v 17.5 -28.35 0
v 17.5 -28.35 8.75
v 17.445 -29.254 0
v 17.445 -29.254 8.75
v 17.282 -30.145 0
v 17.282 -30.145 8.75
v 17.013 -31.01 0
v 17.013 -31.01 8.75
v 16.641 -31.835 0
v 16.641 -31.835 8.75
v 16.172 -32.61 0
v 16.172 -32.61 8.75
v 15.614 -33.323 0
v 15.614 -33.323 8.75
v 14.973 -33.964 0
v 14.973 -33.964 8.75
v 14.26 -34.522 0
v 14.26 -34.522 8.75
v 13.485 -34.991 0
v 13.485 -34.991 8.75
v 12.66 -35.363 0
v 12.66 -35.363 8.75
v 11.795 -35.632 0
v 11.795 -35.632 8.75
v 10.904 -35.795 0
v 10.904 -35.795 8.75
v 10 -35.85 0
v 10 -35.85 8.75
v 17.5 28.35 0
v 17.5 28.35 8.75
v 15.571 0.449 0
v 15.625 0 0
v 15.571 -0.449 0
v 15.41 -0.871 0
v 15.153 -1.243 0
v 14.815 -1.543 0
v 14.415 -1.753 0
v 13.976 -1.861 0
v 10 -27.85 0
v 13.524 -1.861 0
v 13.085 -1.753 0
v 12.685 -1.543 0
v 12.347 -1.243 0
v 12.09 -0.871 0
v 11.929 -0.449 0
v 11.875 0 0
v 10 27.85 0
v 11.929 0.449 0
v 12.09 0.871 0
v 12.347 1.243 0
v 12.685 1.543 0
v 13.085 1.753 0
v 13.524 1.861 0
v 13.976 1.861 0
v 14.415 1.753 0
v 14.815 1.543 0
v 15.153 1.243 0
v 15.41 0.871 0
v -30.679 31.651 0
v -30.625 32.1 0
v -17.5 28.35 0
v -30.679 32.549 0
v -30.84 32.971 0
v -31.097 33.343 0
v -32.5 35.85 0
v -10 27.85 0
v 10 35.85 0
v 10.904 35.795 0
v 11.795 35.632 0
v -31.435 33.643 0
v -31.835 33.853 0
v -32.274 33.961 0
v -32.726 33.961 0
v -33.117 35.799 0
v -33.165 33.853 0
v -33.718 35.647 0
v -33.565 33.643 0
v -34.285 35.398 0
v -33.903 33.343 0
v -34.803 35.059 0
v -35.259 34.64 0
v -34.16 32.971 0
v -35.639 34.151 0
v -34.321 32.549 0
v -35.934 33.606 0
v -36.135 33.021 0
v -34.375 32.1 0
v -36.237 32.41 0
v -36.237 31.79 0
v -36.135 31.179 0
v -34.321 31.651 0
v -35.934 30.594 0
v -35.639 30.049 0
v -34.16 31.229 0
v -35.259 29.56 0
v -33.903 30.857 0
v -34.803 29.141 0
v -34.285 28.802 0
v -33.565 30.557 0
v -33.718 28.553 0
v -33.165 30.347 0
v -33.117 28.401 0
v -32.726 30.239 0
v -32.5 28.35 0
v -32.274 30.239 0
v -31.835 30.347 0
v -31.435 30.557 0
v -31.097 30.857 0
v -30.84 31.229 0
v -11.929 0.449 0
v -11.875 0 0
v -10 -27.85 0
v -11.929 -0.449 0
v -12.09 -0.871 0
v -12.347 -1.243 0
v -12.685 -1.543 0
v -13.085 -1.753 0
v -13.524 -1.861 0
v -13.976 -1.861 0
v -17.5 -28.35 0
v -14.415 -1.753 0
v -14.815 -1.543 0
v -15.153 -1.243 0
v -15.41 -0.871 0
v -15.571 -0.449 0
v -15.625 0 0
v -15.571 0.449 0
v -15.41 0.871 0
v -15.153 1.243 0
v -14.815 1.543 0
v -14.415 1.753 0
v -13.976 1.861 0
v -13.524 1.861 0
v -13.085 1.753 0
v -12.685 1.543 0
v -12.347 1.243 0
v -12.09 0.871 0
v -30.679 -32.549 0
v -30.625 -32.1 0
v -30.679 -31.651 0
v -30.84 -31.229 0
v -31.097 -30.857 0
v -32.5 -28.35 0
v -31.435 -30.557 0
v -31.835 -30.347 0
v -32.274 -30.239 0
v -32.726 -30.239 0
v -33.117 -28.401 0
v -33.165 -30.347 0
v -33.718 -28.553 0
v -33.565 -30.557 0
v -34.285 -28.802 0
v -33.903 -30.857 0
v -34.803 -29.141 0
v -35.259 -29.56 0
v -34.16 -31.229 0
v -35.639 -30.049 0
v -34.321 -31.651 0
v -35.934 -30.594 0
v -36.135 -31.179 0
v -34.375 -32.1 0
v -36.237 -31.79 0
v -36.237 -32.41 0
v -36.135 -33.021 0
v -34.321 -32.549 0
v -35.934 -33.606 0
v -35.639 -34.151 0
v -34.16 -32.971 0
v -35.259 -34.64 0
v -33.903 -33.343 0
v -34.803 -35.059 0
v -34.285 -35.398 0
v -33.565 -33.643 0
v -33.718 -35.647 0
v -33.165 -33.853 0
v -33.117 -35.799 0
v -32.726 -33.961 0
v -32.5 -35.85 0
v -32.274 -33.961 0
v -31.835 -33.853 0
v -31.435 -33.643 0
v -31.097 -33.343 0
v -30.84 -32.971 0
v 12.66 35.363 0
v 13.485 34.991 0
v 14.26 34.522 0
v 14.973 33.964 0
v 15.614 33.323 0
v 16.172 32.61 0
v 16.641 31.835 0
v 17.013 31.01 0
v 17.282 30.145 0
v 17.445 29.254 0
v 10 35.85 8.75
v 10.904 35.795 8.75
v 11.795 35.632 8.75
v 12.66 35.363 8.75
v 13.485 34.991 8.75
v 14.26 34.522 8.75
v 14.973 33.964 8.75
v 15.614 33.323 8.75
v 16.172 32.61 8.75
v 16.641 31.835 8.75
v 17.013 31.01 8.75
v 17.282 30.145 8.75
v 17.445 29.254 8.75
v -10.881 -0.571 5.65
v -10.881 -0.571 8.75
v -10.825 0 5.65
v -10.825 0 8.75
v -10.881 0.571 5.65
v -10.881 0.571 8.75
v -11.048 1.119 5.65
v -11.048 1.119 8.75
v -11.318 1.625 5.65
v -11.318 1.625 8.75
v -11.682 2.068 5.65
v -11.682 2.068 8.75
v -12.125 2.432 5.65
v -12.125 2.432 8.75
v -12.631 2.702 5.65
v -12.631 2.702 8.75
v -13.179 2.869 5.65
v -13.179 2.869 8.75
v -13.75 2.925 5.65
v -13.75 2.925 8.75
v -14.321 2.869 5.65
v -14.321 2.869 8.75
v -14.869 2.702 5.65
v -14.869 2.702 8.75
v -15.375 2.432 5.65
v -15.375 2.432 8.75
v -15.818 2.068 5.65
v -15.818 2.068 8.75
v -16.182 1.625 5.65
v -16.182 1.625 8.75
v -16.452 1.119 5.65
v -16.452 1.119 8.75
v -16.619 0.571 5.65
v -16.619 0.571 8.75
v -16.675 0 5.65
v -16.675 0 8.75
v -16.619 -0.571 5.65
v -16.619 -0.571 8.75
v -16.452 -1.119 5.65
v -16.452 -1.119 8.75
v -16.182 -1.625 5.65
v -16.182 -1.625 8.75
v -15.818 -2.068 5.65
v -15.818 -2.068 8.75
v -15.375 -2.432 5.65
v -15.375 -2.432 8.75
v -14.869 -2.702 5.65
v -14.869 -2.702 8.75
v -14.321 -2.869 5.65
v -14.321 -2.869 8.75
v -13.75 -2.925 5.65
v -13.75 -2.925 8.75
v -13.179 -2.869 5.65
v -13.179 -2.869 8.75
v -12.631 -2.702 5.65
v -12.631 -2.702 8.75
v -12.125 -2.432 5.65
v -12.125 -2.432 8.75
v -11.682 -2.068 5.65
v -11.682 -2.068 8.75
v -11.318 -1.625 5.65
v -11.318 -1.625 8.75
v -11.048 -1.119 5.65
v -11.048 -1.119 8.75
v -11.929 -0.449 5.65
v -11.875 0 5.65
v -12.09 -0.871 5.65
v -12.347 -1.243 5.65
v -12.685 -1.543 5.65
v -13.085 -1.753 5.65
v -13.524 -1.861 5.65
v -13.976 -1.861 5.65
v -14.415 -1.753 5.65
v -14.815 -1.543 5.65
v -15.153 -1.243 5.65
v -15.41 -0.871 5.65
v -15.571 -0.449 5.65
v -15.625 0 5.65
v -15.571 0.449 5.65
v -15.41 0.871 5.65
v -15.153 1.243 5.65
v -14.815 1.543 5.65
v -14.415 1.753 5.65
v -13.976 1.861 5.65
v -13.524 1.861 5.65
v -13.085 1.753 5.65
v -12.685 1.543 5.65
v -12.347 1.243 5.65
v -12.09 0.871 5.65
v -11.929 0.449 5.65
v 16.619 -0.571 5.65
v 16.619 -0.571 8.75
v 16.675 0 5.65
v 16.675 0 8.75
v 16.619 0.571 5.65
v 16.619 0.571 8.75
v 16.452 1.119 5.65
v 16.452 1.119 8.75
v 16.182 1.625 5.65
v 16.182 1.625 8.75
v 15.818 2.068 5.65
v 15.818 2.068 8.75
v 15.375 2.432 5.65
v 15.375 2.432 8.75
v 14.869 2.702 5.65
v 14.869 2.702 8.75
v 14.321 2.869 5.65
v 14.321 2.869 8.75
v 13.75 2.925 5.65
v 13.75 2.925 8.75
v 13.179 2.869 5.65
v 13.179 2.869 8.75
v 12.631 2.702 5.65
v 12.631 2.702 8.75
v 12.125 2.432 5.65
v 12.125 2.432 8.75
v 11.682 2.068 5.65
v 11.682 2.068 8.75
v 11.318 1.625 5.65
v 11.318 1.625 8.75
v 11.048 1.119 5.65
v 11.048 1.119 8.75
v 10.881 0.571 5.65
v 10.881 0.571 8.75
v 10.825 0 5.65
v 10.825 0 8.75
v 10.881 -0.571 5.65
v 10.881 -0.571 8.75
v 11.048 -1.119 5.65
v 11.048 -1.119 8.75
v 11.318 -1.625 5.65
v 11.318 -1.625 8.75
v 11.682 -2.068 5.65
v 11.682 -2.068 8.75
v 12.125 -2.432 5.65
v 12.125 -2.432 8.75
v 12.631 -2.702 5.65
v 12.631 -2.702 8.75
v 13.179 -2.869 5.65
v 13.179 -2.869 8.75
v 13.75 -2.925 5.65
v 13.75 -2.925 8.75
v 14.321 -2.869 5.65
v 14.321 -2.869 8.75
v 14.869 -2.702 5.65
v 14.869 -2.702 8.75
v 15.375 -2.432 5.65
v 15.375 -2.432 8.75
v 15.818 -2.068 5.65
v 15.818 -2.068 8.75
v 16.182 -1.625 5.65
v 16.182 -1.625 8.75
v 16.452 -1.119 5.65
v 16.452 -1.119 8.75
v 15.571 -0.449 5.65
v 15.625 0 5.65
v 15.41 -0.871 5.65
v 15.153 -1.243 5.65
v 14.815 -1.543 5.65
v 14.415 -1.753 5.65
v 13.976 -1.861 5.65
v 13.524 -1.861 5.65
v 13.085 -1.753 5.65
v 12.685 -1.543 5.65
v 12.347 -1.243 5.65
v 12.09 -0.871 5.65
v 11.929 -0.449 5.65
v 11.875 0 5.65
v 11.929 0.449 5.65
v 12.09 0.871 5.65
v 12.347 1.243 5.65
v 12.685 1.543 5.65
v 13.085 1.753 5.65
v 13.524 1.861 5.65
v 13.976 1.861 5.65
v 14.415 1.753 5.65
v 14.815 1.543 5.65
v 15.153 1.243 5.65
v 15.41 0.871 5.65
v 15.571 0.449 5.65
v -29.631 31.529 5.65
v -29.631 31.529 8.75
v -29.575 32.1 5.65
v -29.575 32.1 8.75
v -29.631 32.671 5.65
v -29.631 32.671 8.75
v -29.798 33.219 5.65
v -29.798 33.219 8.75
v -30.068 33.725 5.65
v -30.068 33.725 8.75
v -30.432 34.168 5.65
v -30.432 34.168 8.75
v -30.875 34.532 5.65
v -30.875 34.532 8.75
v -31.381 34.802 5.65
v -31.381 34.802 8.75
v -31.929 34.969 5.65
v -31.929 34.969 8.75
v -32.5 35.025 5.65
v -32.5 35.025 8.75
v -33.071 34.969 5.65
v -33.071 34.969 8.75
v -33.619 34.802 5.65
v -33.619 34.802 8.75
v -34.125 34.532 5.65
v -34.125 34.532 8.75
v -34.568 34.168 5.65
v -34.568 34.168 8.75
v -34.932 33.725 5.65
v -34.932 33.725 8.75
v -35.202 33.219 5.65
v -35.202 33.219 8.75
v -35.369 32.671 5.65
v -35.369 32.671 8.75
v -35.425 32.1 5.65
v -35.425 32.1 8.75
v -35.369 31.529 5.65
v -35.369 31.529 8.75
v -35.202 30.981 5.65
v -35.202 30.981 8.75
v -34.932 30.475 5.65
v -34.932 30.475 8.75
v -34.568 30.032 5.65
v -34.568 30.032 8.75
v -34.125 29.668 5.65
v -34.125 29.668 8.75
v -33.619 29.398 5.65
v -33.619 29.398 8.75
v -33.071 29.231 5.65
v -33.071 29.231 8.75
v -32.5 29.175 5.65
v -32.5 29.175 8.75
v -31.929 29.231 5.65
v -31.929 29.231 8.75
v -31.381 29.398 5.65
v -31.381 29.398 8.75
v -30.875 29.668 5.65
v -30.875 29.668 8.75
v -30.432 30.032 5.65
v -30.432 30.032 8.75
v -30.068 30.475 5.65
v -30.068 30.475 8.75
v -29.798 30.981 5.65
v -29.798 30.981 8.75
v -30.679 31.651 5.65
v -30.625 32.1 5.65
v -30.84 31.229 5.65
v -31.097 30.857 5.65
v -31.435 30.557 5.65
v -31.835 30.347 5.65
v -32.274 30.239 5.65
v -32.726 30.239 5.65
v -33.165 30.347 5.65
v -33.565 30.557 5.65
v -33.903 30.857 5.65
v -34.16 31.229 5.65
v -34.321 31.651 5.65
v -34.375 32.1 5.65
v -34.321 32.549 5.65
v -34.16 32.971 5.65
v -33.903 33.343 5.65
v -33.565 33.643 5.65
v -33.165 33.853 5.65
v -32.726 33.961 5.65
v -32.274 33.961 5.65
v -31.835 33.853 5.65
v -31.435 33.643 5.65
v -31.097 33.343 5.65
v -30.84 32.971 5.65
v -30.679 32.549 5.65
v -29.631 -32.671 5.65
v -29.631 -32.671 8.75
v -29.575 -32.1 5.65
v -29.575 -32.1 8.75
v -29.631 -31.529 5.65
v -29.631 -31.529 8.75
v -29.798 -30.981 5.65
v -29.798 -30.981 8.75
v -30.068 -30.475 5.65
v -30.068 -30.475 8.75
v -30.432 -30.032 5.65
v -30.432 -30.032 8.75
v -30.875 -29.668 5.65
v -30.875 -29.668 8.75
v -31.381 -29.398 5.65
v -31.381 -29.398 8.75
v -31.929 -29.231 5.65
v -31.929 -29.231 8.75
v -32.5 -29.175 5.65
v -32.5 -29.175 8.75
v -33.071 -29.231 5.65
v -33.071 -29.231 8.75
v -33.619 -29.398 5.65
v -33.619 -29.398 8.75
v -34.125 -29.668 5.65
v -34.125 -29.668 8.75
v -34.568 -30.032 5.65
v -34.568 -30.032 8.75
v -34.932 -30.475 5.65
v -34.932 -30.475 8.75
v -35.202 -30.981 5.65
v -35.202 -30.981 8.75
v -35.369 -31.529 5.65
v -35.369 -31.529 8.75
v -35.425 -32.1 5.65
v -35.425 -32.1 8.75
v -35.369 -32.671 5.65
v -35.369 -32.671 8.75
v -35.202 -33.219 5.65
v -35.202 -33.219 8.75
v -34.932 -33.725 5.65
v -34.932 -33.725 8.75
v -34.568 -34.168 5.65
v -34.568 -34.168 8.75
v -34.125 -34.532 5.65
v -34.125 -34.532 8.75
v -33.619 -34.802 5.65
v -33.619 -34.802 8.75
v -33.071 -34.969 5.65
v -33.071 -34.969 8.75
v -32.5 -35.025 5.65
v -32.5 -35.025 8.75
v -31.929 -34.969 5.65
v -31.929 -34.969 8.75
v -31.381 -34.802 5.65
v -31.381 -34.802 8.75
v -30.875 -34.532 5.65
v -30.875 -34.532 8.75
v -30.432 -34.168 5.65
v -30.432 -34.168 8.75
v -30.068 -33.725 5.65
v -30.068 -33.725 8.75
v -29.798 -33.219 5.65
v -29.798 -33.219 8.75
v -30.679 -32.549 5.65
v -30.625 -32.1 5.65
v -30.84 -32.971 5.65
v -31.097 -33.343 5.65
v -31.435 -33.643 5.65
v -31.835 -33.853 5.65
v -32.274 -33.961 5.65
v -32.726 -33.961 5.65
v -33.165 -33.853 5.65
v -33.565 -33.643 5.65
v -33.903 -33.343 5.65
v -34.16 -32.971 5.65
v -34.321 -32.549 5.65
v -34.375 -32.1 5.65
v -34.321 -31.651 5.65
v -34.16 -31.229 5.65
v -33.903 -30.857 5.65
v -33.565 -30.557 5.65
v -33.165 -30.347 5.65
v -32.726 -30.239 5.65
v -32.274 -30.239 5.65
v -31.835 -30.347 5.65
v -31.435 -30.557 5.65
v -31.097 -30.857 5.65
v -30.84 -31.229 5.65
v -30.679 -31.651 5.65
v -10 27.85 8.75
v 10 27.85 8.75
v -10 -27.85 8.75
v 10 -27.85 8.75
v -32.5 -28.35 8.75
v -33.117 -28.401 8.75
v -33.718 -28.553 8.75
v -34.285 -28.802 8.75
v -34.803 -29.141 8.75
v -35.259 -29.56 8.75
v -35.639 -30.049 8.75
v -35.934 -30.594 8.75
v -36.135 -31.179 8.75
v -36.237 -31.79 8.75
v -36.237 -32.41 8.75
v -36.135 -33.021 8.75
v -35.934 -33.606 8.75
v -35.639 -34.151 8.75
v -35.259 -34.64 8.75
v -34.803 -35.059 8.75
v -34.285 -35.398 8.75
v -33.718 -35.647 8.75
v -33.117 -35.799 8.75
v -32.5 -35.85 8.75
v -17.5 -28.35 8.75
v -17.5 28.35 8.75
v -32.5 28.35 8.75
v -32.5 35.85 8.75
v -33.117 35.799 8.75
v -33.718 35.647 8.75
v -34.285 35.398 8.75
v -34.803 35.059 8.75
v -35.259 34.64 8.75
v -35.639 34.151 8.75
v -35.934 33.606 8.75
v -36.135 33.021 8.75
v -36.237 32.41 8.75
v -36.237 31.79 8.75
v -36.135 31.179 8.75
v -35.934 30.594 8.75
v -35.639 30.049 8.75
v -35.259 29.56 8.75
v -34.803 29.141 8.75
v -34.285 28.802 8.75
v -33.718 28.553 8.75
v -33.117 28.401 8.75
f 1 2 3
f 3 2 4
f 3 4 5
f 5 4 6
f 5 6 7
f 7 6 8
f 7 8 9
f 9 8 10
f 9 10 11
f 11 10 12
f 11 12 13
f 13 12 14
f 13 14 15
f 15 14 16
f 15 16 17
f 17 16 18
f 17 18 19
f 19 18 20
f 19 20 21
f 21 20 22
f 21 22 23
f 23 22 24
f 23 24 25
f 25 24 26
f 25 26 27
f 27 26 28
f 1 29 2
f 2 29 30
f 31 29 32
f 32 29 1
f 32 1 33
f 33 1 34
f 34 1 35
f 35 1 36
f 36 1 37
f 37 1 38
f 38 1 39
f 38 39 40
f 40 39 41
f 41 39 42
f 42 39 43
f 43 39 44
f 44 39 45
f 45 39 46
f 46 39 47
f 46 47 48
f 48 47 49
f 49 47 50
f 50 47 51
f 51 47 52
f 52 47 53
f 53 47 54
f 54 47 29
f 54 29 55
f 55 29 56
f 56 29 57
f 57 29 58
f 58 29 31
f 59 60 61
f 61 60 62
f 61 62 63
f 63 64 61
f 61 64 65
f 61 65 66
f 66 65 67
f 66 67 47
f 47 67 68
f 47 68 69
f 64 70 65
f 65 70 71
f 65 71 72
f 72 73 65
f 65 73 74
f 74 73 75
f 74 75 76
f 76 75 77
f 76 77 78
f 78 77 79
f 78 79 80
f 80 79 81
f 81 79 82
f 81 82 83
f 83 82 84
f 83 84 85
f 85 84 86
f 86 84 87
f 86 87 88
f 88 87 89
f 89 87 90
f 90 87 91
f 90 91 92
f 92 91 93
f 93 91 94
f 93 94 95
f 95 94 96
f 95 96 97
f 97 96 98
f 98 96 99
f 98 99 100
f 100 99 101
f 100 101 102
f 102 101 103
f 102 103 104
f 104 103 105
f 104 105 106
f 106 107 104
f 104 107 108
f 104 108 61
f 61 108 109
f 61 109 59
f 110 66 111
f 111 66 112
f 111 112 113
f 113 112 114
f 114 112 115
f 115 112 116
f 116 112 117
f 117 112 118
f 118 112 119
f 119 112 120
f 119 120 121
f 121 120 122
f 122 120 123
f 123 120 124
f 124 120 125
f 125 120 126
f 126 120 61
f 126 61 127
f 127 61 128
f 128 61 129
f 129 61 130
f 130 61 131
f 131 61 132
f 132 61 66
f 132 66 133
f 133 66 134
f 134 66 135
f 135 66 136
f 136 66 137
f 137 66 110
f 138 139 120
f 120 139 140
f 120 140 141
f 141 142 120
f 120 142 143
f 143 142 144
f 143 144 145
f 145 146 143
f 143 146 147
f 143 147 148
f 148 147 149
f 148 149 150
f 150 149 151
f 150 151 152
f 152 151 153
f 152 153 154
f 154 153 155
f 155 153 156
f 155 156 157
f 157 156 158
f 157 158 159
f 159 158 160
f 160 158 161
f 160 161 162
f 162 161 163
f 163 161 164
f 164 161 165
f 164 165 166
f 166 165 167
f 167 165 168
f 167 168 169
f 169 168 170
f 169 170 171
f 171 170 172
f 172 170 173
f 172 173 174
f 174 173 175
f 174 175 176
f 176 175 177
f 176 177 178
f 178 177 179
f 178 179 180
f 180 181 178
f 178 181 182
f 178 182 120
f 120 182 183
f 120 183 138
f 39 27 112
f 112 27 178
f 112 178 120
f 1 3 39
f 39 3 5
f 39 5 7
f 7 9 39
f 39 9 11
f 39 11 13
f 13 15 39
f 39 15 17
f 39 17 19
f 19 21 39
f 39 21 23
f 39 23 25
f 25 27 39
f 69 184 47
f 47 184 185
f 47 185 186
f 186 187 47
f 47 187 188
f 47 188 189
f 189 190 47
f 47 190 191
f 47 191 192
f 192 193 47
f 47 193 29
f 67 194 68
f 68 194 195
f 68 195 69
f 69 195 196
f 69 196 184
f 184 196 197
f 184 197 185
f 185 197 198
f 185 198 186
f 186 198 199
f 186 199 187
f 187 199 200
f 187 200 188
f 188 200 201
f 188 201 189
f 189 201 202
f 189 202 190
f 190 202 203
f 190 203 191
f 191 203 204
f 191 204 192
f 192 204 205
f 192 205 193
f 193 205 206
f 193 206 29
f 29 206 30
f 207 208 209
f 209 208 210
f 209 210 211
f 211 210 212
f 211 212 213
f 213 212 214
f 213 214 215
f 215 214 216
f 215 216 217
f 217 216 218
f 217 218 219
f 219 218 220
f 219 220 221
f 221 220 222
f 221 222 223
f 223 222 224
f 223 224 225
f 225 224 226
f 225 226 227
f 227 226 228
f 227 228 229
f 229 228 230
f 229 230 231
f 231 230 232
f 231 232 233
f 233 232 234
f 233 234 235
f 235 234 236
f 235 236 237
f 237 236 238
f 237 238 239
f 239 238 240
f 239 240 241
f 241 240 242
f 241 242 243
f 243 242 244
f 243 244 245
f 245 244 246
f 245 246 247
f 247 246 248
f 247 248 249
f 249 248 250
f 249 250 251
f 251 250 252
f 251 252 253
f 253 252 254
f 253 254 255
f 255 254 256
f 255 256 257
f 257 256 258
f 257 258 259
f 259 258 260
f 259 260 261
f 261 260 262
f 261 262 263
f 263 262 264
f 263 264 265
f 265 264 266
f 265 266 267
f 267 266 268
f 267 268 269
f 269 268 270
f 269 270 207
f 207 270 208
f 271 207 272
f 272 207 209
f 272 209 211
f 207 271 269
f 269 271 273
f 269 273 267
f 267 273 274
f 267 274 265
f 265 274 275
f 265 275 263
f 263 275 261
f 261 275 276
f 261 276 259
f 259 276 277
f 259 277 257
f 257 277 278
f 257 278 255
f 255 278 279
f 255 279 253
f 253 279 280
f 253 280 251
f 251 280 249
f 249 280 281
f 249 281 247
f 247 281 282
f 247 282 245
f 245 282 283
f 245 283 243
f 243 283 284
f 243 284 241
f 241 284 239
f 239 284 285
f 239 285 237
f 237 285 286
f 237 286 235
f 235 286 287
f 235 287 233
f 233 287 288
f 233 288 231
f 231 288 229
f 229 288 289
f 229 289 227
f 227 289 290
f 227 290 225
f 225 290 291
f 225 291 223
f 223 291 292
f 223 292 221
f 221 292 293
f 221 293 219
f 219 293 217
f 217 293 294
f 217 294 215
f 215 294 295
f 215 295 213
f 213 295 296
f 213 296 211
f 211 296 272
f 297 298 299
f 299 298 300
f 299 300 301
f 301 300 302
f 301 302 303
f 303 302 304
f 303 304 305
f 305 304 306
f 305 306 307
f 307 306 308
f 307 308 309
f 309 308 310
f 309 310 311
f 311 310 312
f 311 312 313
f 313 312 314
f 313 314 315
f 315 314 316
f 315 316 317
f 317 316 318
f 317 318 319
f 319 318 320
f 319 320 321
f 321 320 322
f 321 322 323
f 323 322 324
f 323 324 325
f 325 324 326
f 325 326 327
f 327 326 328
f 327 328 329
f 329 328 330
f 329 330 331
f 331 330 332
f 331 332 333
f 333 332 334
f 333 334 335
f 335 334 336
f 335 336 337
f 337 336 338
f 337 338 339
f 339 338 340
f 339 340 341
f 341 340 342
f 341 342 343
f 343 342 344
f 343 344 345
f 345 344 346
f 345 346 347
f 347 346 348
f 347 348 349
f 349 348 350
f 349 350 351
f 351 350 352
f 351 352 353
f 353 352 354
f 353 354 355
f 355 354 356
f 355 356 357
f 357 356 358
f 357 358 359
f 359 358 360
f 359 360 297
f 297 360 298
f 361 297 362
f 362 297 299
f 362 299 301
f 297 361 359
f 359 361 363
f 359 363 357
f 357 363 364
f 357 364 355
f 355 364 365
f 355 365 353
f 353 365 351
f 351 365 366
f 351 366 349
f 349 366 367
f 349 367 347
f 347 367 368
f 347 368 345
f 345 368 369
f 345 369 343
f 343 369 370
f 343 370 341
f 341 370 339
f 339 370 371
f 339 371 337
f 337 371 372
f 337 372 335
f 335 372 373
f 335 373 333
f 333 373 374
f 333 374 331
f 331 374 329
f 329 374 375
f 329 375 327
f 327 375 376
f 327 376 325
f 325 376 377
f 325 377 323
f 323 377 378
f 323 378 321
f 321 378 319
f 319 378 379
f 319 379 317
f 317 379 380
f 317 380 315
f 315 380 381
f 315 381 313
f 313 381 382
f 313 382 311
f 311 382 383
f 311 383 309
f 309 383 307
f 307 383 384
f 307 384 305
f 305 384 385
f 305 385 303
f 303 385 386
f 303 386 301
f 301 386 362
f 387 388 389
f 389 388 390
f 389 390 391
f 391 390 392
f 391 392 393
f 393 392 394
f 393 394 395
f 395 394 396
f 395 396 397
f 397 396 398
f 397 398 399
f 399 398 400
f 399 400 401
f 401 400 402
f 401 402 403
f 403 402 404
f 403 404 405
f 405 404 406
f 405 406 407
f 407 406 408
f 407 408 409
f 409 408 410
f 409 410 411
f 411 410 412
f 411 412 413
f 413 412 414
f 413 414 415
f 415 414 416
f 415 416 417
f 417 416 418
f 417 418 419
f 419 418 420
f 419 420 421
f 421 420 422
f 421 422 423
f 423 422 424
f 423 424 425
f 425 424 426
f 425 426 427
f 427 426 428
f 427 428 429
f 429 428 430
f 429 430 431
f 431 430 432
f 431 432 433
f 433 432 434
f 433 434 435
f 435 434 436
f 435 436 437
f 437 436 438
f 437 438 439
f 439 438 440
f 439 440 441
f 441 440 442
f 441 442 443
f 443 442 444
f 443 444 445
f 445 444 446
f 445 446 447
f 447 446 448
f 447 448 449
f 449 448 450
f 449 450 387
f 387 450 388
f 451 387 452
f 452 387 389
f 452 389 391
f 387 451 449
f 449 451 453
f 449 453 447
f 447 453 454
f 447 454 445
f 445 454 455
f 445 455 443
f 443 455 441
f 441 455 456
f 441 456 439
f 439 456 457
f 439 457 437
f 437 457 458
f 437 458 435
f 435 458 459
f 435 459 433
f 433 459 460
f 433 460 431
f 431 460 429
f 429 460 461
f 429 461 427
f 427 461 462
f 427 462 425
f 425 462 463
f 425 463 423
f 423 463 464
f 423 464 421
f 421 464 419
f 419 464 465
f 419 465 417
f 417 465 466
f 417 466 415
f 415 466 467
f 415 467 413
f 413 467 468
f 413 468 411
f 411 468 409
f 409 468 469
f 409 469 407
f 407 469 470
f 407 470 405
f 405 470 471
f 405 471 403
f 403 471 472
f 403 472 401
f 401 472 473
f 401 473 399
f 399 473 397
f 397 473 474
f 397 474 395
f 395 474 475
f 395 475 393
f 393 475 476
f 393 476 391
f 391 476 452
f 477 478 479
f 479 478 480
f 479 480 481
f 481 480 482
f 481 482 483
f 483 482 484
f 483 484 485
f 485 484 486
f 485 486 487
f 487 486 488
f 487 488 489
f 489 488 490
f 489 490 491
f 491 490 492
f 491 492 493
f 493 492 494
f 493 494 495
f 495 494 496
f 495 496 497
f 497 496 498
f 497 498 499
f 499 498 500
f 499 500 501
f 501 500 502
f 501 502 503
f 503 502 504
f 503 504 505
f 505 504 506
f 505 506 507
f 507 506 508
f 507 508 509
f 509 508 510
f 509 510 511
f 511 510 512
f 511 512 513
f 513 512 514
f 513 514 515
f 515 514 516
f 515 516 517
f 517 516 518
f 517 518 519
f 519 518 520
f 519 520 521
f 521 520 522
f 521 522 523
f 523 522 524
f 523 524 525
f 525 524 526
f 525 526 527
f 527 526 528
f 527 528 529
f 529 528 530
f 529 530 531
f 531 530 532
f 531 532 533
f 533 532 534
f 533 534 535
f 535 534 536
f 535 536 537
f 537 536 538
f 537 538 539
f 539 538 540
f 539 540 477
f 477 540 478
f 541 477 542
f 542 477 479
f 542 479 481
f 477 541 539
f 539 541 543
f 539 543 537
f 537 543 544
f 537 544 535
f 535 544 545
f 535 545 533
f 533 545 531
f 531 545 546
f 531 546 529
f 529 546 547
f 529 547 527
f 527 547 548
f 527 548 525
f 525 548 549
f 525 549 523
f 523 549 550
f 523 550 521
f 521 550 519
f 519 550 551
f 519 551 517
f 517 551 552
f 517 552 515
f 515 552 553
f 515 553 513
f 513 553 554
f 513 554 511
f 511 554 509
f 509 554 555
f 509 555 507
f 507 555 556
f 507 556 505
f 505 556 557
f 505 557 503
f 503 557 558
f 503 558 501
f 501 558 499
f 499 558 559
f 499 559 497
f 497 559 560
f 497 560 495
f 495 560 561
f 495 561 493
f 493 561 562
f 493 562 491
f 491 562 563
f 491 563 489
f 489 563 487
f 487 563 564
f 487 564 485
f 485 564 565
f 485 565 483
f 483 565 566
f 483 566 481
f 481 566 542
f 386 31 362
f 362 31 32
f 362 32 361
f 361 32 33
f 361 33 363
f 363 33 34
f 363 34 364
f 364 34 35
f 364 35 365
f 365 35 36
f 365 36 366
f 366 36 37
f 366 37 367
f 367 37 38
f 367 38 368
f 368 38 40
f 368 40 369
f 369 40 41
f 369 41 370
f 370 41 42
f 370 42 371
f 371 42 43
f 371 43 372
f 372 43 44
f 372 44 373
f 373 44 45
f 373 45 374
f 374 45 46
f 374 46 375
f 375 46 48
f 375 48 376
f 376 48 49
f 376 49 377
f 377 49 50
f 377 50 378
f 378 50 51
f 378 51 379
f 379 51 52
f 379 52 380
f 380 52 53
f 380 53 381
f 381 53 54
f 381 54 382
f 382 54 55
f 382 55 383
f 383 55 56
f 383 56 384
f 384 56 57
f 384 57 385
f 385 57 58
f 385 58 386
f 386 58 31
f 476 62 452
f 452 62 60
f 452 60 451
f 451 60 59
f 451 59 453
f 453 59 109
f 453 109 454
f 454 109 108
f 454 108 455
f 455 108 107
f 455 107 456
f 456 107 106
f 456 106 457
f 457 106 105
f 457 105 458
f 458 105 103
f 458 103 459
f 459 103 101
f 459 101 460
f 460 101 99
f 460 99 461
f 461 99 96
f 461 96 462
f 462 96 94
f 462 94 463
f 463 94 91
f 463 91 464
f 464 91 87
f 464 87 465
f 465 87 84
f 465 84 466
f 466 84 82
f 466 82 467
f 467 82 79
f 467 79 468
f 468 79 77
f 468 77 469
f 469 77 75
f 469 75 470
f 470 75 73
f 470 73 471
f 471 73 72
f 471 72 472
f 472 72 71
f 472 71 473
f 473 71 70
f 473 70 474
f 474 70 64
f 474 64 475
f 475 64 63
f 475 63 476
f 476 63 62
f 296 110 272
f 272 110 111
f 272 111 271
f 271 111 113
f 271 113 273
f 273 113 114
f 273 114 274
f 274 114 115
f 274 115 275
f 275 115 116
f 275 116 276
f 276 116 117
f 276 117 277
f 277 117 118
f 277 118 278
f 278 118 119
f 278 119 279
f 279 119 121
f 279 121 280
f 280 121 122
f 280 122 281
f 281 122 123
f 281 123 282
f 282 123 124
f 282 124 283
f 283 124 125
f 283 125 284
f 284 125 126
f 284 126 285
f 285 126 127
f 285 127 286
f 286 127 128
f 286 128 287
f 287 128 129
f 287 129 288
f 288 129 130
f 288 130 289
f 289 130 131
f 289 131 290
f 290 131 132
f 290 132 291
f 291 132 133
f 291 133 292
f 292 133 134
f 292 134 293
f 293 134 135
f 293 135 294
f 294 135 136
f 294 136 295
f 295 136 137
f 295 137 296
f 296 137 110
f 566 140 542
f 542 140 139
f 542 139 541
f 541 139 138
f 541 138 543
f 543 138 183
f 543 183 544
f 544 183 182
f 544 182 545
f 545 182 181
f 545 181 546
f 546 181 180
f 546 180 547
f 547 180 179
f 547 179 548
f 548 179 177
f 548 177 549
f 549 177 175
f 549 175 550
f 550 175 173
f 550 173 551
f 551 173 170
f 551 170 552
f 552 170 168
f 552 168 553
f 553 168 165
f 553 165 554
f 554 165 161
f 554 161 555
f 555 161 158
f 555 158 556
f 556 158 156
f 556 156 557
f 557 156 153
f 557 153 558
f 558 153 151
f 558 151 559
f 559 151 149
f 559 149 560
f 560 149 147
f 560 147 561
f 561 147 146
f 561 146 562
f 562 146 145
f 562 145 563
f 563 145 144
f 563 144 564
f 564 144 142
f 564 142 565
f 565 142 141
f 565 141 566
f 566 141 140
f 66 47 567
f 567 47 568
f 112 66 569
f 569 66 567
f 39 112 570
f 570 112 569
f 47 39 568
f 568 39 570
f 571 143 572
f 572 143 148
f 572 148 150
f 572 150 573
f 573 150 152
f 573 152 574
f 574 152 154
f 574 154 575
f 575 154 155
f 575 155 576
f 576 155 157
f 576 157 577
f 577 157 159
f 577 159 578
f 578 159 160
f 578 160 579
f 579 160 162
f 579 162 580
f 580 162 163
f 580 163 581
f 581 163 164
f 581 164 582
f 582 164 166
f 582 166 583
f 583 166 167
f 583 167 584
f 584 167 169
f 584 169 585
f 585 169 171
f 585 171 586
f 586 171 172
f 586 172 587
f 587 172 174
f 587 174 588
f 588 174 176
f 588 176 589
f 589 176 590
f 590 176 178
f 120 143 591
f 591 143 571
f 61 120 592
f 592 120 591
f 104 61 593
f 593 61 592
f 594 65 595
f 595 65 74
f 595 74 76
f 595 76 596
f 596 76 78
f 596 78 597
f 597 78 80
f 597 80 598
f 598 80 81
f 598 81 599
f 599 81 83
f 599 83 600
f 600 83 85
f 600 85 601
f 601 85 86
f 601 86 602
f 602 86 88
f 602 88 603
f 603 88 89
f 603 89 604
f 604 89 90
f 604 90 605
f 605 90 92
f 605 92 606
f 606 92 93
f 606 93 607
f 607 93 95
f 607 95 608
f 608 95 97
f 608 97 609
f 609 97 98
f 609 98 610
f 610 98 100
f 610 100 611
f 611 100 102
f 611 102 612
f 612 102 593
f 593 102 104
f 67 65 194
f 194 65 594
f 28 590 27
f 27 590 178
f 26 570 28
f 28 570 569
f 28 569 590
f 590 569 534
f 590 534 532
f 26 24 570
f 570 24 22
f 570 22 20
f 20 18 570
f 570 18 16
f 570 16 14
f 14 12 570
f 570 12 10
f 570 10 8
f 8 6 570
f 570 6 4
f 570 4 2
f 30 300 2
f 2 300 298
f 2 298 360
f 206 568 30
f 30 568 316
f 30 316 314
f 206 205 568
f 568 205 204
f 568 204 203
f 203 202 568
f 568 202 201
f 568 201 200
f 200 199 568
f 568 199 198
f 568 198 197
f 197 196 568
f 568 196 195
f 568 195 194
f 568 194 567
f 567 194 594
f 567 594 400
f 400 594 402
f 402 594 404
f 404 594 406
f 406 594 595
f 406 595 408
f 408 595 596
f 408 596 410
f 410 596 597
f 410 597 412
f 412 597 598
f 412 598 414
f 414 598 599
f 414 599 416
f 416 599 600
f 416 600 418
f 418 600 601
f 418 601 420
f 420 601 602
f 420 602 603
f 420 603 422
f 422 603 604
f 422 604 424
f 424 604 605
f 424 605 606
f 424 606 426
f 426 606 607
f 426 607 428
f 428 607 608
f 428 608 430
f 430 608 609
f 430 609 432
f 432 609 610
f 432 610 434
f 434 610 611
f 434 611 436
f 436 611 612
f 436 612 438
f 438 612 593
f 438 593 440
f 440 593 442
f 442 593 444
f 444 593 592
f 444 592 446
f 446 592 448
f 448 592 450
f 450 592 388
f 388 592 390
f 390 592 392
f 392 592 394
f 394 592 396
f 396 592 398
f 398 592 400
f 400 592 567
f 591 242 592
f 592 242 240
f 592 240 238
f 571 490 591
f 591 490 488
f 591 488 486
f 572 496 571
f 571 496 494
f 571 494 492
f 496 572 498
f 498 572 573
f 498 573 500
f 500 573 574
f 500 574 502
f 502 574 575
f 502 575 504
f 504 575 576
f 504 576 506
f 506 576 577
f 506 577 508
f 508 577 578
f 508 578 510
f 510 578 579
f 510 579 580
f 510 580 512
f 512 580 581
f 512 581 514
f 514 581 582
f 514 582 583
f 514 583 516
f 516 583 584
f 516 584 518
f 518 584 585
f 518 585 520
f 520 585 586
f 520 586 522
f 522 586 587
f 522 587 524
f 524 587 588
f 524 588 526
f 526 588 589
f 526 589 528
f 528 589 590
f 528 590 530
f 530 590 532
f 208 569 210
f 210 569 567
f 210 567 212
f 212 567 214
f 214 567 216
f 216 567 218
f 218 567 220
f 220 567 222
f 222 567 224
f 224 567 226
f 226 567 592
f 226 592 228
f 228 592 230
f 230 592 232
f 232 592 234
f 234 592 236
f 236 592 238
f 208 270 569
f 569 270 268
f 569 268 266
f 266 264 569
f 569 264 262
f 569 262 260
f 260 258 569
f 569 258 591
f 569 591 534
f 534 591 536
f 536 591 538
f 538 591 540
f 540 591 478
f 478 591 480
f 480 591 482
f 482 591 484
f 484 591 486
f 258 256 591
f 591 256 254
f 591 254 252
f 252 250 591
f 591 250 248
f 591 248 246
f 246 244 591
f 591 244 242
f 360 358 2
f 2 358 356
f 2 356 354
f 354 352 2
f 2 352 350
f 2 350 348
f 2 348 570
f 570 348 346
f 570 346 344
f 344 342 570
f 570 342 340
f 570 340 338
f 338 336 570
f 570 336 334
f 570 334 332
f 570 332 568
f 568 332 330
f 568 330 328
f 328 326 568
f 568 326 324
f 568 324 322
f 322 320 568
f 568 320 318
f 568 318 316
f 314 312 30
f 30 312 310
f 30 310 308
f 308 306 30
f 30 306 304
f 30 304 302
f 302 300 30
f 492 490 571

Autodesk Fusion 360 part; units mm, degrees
sketch "Sketch1" plane through (0, 0, 0) normal (0, 0, 1) x (1, 0, 0)
  line L0 (10, 27.85) -> (-10, 27.85)
  line L1 (-10, 27.85) -> (-10, -27.85)
  line L2 (-10, -27.85) -> (10, -27.85)
  line L3 (10, -27.85) -> (10, 27.85)
  line L4 (10, 27.85) -> (-10, -27.85) construction
  line L5 (-10, 27.85) -> (10, -27.85) construction
  line L6 (-10, 0) -> (-17.5, 0) construction
  line L7 (10, 0) -> (17.5, 0) construction
  line L8 (0, 27.85) -> (0, 35.85) construction
  line L9 (0, -27.85) -> (0, -35.85) construction
  line L10 (17.5, 0) -> (17.5, 35.85)
  line L11 (0, 35.85) -> (17.5, 35.85)
  line L12 (17.5, 35.85) -> (-17.5, 35.85)
  line L13 (-17.5, 35.85) -> (-17.5, -35.85)
  line L14 (-17.5, -35.85) -> (17.5, -35.85)
  line L15 (17.5, -35.85) -> (17.5, 35.85)
  line L16 (-17.5, 35.85) -> (-32.5, 35.85)
  line L17 (-32.5, 35.85) -> (-32.5, 28.35)
  line L18 (-32.5, 28.35) -> (-17.5, 28.35)
  line L19 (-17.5, -35.85) -> (-32.5, -35.85)
  line L20 (-32.5, -35.85) -> (-32.5, -28.35)
  line L21 (-32.5, -28.35) -> (-17.5, -28.35)
  circle A0 centre (-32.5, 32.1) radius 3.75
  circle A1 centre (-32.5, -32.1) radius 3.75
  dimension "d1" = 20
  dimension "d2" = 55.7
  dimension "d3" = 7.5
  dimension "d4" = 7.5
  dimension "d5" = 8
  dimension "d6" = 8
  dimension "d7" = 35
  dimension "d8" = 15
  dimension "d9" = 7.5
  dimension "d10" = 15
  dimension "d11" = 7.5
extrude "Extrude1" add sketch "Sketch1" along normal blind 8.75
sketch "Sketch2" plane through (0, 0, 8.75) normal (0, 0, 1) x (-1, 0, 0)
  line L0 (-10, -27.85) -> (-10, 27.85)
  line L1 (-10, 27.85) -> (10, 27.85)
  line L2 (10, 27.85) -> (10, -27.85)
  line L3 (10, -27.85) -> (-10, -27.85)
  line L4 (32.5, 35.85) -> (-17.5, 35.85)
  line L5 (-17.5, 35.85) -> (-17.5, -35.85)
  line L6 (-17.5, -35.85) -> (32.5, -35.85)
  arc A0 (32.5, -35.85) -> (32.5, -28.35) centre (32.5, -32.1) ccw
  line L7 (32.5, -28.35) -> (17.5, -28.35)
  line L8 (17.5, -28.35) -> (17.5, 28.35)
  line L9 (17.5, 28.35) -> (32.5, 28.35)
  arc A1 (32.5, 28.35) -> (32.5, 35.85) centre (32.5, 32.1) ccw
  circle A2 centre (32.5, -32.1) radius 2.925
  circle A3 centre (32.5, 32.1) radius 2.925
  circle A4 centre (32.5, -32.1) radius 1.875
  circle A5 centre (32.5, 32.1) radius 1.875
  line L10 (17.5, 0) -> (10, 0) construction
  line L11 (-10, 0) -> (-17.5, 0) construction
  circle A6 centre (13.75, 0) radius 2.925
  circle A7 centre (13.75, 0) radius 1.875
  circle A8 centre (-13.75, 0) radius 2.925
  circle A9 centre (-13.75, 0) radius 1.875
  dimension "d14" = 5.85
  dimension "d15" = 5.85
  dimension "d16" = 3.75
  dimension "d17" = 3.75
  dimension "d18" = 5.85
  dimension "d19" = 3.75
  dimension "d20" = 5.85
  dimension "d21" = 3.75
extrude "Extrude2" cut sketch "Sketch2" against normal blind 26 contours A4 | A5 | A7 | A9
extrude "Extrude3" cut sketch "Sketch2" against normal blind 3.1 contours A2 | A3 | A6 | A8
fillet "Fillet1" radius 7.5 2 edges at (17.5, 35.85, 4.375) (17.5, -35.85, 4.375)
